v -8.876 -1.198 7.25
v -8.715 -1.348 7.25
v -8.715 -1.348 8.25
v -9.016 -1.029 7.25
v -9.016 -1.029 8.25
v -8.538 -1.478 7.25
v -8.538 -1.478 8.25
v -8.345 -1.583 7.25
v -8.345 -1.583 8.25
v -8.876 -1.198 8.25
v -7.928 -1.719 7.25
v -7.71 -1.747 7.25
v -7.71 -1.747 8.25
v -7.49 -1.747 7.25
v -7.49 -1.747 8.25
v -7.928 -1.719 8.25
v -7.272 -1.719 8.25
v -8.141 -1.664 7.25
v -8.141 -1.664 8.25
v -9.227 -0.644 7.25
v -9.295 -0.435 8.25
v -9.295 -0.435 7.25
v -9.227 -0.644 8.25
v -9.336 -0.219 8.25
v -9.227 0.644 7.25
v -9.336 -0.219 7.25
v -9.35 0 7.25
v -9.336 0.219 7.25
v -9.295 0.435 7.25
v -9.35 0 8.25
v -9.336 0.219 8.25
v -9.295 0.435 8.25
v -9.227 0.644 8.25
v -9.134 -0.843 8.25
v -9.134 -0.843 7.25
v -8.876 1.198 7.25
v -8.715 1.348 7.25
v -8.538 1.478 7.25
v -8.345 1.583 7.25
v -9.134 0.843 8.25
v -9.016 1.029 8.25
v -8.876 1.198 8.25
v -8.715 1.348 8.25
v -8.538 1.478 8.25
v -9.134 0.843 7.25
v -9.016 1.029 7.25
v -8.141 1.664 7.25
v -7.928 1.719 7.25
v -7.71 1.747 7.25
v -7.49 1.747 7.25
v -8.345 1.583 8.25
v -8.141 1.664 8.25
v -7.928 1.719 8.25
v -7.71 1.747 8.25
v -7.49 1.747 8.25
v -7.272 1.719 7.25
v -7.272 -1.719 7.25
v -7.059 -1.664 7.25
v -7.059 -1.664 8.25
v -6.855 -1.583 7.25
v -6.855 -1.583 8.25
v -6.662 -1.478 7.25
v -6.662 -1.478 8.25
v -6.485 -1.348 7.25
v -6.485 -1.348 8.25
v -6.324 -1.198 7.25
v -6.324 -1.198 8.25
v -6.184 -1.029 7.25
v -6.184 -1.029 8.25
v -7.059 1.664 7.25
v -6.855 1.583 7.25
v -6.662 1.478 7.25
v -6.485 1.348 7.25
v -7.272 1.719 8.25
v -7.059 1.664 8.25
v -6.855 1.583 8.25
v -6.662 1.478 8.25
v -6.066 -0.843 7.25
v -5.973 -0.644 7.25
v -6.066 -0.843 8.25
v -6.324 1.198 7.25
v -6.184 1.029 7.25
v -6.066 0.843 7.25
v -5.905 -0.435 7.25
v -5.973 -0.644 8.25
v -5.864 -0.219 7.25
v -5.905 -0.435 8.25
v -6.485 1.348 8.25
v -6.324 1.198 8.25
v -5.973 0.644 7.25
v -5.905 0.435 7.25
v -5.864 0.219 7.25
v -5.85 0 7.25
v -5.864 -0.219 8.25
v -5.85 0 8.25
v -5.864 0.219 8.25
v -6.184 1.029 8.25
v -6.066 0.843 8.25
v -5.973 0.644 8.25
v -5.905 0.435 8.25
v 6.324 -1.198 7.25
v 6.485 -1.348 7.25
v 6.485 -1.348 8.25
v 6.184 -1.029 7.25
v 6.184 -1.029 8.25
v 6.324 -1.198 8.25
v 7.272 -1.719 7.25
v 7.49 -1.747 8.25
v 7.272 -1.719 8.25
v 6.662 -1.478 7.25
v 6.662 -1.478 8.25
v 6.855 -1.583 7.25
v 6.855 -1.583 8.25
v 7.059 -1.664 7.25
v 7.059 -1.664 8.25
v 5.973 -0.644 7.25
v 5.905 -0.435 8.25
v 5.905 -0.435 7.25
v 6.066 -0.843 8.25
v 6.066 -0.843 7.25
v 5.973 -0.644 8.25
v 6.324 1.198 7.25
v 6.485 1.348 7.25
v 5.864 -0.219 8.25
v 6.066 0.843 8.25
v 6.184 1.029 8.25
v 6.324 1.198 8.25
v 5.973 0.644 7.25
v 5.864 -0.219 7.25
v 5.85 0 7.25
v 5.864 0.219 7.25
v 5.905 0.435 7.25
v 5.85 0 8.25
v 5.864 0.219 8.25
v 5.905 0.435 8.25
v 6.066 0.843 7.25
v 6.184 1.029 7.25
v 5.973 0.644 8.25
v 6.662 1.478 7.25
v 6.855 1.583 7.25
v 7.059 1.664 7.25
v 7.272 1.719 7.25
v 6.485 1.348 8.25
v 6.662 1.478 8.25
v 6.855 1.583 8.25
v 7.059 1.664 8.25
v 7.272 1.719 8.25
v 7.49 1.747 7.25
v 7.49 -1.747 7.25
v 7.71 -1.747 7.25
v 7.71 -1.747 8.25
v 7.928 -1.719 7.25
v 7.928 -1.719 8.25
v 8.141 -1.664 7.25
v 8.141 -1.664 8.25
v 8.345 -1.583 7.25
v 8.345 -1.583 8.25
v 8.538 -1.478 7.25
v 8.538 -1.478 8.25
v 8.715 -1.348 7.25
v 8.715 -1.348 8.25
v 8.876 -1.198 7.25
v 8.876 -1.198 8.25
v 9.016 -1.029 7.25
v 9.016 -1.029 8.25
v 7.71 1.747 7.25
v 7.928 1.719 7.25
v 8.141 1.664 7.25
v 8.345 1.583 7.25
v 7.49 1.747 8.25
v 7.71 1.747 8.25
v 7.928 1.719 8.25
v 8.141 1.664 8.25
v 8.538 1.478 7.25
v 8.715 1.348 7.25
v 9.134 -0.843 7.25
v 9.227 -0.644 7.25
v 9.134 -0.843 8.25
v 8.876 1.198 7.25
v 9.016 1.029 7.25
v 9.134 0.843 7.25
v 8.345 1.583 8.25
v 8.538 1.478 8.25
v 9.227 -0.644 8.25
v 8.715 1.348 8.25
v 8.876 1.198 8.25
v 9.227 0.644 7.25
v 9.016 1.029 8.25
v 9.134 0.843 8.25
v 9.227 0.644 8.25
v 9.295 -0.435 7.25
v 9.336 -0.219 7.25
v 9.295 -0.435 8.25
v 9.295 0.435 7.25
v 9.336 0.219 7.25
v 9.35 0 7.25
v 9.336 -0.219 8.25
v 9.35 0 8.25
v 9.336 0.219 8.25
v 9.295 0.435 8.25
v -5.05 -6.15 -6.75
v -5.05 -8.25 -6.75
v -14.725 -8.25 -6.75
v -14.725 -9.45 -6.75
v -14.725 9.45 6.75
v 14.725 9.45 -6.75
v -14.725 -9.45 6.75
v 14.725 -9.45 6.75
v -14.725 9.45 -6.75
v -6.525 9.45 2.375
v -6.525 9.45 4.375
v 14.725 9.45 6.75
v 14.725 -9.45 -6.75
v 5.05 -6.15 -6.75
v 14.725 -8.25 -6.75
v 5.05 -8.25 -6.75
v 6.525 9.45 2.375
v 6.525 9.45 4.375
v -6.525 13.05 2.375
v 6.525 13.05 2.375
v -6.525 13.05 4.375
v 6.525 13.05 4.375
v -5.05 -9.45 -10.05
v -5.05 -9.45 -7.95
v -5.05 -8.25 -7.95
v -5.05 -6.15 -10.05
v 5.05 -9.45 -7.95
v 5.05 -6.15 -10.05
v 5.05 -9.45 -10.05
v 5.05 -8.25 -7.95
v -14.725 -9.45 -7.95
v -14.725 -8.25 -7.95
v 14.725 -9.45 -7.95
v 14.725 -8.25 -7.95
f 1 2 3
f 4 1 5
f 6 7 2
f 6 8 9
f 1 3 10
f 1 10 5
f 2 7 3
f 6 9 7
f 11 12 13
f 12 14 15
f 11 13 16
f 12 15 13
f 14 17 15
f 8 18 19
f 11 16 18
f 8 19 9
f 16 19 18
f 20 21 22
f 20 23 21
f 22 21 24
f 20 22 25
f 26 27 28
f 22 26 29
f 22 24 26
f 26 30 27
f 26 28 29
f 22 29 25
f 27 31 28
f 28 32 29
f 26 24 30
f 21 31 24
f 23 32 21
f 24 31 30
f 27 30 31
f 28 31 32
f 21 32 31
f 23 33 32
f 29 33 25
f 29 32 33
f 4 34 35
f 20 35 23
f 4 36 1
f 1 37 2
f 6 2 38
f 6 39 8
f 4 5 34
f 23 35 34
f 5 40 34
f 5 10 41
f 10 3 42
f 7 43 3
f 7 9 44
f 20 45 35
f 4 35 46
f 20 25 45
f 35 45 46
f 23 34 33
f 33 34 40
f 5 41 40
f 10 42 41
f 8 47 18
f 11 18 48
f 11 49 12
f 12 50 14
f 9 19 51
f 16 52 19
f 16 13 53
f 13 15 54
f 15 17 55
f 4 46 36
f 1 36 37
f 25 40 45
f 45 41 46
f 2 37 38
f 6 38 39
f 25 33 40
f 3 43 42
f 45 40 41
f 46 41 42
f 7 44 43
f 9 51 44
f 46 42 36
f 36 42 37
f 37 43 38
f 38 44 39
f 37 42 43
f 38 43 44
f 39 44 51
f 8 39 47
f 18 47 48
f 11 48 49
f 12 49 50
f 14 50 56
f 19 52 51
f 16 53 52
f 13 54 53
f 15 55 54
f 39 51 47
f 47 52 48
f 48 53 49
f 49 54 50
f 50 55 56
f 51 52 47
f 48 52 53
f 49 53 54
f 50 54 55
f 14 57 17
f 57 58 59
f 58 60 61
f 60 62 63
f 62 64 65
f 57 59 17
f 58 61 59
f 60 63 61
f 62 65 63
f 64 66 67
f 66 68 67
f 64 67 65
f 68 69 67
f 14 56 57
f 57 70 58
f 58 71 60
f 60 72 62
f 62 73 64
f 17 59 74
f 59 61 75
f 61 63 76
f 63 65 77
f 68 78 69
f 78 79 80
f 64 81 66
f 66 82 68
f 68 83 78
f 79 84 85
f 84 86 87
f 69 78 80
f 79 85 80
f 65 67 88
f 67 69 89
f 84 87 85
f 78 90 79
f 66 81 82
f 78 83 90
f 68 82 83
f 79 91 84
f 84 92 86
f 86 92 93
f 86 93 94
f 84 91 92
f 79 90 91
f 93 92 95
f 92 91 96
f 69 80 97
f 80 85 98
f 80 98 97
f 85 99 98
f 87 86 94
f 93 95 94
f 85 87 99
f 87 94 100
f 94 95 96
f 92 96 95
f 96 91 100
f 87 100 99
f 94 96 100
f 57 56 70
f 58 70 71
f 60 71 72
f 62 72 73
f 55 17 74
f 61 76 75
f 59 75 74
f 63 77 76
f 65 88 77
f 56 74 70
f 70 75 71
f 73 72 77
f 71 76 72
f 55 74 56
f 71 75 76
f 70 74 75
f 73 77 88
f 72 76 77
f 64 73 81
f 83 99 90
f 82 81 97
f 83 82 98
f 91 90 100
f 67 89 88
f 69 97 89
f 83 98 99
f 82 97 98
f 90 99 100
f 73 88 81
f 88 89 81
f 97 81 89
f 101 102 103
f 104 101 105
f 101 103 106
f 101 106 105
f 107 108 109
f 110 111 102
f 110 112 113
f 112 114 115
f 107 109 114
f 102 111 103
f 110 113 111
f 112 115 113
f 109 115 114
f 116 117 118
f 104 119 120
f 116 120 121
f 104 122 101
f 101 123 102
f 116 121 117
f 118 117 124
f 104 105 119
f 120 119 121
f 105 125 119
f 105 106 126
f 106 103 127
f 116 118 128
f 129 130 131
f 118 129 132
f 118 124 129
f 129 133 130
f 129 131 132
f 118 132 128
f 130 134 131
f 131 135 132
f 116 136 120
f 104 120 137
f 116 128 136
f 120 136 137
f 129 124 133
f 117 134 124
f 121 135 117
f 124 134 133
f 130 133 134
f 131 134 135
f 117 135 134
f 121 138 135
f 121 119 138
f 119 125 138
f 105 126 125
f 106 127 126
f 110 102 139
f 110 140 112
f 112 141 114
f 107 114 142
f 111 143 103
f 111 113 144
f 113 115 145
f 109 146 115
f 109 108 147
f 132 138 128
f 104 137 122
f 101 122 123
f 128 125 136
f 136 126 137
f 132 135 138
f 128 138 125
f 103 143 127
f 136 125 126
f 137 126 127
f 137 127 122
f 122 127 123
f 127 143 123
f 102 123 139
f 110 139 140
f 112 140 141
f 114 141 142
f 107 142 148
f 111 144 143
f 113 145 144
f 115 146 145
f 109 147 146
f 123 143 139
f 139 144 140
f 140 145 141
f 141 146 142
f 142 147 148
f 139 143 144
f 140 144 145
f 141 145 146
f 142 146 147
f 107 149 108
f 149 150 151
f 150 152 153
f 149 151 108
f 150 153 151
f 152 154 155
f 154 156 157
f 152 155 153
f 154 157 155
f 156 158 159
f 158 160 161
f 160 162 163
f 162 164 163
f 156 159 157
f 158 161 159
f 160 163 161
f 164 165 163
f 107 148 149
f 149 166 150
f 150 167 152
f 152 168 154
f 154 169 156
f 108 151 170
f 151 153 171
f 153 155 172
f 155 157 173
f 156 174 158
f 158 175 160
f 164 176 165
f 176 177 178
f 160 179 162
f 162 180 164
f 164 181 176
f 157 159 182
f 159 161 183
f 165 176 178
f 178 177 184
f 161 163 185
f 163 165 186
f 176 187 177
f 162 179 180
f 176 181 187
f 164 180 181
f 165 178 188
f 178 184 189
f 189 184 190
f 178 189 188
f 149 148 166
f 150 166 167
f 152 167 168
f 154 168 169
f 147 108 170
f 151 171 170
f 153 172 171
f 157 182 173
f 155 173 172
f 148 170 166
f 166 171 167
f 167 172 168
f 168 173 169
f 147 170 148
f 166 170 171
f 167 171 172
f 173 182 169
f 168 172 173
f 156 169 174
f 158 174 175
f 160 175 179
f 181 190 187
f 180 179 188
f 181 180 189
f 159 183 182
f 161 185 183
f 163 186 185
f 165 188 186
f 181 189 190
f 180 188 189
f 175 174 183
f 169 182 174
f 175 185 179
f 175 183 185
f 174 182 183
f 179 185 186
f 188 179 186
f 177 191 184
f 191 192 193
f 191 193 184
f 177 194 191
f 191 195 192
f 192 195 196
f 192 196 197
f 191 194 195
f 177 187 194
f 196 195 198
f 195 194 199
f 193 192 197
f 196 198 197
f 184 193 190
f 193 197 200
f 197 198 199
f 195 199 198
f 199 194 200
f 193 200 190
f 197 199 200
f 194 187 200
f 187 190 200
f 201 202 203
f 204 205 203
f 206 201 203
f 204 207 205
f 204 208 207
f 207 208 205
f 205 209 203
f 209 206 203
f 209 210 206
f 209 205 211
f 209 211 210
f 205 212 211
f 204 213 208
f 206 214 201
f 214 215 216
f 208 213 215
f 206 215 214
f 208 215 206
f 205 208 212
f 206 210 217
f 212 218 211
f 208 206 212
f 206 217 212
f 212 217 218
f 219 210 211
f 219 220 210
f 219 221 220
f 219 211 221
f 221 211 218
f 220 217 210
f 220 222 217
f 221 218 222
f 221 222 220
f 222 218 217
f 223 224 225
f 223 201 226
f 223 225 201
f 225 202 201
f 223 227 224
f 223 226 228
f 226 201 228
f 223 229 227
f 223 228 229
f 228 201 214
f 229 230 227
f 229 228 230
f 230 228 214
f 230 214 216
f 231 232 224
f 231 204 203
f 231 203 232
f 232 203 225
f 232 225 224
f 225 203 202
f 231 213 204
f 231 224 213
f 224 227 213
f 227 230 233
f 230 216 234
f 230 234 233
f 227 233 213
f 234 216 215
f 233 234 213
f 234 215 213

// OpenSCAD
// Sharp GP2Y0D413K0F 距離センサ モデル
// 単位: mm
// 座標系: 本体中心を原点 (0,0,0)
// 取付面(PWB/コネクタ)が -Z 方向

$fn = 50;

module gp2y0d413k0f() {
    // 全体サイズ: 29.45(W) x 18.9(H) x 13.5(D)
    // 中心を原点とするため、各寸法を半分にして計算
    width = 29.45;
    height = 18.9;
    depth = 13.5;
    
    // ボディ本体
    color("gray") {
        translate([0, 0, -depth/2 + 6.75]) // 全体のZ中心オフセット調整
        cube([width, height, depth], center = true);
    }

    // レンズ部 (突出している部分)
    // 側面図より: レンズケースの突起はZ方向に突出
    translate([0, 7.2/2 + (18.9-7.2)/2, 0])
    color("black")
    translate([0, 0, (depth/2 + 2)/2 - 1])
    cube([13.05, 7.2, 2], center=true);

    // レンズ本体 (2つの円筒)
    // 左右対称に配置
    for (x = [-7.6, 7.6]) { // 19.7の半分付近
        color("darkgray")
        translate([x, 0, depth/2 + 0.5])
        cylinder(r = 3.5/2, h = 1);
    }

    // コネクタ部 (PWB側 -Z面)
    color("white")
    translate([0, -(height/2 - 3.3/2), -depth/2 - 3.3/2])
    cube([10.1, 3.3, 3.3], center=true);

    // PWB部分 (厚さ 1.2mm)
    color("brown")
    translate([0, -(height/2 - 1.2/2), -depth/2 - 0.6])
    cube([width, 1.2, 1.2], center=true);
}

// 実行
gp2y0d413k0f();
